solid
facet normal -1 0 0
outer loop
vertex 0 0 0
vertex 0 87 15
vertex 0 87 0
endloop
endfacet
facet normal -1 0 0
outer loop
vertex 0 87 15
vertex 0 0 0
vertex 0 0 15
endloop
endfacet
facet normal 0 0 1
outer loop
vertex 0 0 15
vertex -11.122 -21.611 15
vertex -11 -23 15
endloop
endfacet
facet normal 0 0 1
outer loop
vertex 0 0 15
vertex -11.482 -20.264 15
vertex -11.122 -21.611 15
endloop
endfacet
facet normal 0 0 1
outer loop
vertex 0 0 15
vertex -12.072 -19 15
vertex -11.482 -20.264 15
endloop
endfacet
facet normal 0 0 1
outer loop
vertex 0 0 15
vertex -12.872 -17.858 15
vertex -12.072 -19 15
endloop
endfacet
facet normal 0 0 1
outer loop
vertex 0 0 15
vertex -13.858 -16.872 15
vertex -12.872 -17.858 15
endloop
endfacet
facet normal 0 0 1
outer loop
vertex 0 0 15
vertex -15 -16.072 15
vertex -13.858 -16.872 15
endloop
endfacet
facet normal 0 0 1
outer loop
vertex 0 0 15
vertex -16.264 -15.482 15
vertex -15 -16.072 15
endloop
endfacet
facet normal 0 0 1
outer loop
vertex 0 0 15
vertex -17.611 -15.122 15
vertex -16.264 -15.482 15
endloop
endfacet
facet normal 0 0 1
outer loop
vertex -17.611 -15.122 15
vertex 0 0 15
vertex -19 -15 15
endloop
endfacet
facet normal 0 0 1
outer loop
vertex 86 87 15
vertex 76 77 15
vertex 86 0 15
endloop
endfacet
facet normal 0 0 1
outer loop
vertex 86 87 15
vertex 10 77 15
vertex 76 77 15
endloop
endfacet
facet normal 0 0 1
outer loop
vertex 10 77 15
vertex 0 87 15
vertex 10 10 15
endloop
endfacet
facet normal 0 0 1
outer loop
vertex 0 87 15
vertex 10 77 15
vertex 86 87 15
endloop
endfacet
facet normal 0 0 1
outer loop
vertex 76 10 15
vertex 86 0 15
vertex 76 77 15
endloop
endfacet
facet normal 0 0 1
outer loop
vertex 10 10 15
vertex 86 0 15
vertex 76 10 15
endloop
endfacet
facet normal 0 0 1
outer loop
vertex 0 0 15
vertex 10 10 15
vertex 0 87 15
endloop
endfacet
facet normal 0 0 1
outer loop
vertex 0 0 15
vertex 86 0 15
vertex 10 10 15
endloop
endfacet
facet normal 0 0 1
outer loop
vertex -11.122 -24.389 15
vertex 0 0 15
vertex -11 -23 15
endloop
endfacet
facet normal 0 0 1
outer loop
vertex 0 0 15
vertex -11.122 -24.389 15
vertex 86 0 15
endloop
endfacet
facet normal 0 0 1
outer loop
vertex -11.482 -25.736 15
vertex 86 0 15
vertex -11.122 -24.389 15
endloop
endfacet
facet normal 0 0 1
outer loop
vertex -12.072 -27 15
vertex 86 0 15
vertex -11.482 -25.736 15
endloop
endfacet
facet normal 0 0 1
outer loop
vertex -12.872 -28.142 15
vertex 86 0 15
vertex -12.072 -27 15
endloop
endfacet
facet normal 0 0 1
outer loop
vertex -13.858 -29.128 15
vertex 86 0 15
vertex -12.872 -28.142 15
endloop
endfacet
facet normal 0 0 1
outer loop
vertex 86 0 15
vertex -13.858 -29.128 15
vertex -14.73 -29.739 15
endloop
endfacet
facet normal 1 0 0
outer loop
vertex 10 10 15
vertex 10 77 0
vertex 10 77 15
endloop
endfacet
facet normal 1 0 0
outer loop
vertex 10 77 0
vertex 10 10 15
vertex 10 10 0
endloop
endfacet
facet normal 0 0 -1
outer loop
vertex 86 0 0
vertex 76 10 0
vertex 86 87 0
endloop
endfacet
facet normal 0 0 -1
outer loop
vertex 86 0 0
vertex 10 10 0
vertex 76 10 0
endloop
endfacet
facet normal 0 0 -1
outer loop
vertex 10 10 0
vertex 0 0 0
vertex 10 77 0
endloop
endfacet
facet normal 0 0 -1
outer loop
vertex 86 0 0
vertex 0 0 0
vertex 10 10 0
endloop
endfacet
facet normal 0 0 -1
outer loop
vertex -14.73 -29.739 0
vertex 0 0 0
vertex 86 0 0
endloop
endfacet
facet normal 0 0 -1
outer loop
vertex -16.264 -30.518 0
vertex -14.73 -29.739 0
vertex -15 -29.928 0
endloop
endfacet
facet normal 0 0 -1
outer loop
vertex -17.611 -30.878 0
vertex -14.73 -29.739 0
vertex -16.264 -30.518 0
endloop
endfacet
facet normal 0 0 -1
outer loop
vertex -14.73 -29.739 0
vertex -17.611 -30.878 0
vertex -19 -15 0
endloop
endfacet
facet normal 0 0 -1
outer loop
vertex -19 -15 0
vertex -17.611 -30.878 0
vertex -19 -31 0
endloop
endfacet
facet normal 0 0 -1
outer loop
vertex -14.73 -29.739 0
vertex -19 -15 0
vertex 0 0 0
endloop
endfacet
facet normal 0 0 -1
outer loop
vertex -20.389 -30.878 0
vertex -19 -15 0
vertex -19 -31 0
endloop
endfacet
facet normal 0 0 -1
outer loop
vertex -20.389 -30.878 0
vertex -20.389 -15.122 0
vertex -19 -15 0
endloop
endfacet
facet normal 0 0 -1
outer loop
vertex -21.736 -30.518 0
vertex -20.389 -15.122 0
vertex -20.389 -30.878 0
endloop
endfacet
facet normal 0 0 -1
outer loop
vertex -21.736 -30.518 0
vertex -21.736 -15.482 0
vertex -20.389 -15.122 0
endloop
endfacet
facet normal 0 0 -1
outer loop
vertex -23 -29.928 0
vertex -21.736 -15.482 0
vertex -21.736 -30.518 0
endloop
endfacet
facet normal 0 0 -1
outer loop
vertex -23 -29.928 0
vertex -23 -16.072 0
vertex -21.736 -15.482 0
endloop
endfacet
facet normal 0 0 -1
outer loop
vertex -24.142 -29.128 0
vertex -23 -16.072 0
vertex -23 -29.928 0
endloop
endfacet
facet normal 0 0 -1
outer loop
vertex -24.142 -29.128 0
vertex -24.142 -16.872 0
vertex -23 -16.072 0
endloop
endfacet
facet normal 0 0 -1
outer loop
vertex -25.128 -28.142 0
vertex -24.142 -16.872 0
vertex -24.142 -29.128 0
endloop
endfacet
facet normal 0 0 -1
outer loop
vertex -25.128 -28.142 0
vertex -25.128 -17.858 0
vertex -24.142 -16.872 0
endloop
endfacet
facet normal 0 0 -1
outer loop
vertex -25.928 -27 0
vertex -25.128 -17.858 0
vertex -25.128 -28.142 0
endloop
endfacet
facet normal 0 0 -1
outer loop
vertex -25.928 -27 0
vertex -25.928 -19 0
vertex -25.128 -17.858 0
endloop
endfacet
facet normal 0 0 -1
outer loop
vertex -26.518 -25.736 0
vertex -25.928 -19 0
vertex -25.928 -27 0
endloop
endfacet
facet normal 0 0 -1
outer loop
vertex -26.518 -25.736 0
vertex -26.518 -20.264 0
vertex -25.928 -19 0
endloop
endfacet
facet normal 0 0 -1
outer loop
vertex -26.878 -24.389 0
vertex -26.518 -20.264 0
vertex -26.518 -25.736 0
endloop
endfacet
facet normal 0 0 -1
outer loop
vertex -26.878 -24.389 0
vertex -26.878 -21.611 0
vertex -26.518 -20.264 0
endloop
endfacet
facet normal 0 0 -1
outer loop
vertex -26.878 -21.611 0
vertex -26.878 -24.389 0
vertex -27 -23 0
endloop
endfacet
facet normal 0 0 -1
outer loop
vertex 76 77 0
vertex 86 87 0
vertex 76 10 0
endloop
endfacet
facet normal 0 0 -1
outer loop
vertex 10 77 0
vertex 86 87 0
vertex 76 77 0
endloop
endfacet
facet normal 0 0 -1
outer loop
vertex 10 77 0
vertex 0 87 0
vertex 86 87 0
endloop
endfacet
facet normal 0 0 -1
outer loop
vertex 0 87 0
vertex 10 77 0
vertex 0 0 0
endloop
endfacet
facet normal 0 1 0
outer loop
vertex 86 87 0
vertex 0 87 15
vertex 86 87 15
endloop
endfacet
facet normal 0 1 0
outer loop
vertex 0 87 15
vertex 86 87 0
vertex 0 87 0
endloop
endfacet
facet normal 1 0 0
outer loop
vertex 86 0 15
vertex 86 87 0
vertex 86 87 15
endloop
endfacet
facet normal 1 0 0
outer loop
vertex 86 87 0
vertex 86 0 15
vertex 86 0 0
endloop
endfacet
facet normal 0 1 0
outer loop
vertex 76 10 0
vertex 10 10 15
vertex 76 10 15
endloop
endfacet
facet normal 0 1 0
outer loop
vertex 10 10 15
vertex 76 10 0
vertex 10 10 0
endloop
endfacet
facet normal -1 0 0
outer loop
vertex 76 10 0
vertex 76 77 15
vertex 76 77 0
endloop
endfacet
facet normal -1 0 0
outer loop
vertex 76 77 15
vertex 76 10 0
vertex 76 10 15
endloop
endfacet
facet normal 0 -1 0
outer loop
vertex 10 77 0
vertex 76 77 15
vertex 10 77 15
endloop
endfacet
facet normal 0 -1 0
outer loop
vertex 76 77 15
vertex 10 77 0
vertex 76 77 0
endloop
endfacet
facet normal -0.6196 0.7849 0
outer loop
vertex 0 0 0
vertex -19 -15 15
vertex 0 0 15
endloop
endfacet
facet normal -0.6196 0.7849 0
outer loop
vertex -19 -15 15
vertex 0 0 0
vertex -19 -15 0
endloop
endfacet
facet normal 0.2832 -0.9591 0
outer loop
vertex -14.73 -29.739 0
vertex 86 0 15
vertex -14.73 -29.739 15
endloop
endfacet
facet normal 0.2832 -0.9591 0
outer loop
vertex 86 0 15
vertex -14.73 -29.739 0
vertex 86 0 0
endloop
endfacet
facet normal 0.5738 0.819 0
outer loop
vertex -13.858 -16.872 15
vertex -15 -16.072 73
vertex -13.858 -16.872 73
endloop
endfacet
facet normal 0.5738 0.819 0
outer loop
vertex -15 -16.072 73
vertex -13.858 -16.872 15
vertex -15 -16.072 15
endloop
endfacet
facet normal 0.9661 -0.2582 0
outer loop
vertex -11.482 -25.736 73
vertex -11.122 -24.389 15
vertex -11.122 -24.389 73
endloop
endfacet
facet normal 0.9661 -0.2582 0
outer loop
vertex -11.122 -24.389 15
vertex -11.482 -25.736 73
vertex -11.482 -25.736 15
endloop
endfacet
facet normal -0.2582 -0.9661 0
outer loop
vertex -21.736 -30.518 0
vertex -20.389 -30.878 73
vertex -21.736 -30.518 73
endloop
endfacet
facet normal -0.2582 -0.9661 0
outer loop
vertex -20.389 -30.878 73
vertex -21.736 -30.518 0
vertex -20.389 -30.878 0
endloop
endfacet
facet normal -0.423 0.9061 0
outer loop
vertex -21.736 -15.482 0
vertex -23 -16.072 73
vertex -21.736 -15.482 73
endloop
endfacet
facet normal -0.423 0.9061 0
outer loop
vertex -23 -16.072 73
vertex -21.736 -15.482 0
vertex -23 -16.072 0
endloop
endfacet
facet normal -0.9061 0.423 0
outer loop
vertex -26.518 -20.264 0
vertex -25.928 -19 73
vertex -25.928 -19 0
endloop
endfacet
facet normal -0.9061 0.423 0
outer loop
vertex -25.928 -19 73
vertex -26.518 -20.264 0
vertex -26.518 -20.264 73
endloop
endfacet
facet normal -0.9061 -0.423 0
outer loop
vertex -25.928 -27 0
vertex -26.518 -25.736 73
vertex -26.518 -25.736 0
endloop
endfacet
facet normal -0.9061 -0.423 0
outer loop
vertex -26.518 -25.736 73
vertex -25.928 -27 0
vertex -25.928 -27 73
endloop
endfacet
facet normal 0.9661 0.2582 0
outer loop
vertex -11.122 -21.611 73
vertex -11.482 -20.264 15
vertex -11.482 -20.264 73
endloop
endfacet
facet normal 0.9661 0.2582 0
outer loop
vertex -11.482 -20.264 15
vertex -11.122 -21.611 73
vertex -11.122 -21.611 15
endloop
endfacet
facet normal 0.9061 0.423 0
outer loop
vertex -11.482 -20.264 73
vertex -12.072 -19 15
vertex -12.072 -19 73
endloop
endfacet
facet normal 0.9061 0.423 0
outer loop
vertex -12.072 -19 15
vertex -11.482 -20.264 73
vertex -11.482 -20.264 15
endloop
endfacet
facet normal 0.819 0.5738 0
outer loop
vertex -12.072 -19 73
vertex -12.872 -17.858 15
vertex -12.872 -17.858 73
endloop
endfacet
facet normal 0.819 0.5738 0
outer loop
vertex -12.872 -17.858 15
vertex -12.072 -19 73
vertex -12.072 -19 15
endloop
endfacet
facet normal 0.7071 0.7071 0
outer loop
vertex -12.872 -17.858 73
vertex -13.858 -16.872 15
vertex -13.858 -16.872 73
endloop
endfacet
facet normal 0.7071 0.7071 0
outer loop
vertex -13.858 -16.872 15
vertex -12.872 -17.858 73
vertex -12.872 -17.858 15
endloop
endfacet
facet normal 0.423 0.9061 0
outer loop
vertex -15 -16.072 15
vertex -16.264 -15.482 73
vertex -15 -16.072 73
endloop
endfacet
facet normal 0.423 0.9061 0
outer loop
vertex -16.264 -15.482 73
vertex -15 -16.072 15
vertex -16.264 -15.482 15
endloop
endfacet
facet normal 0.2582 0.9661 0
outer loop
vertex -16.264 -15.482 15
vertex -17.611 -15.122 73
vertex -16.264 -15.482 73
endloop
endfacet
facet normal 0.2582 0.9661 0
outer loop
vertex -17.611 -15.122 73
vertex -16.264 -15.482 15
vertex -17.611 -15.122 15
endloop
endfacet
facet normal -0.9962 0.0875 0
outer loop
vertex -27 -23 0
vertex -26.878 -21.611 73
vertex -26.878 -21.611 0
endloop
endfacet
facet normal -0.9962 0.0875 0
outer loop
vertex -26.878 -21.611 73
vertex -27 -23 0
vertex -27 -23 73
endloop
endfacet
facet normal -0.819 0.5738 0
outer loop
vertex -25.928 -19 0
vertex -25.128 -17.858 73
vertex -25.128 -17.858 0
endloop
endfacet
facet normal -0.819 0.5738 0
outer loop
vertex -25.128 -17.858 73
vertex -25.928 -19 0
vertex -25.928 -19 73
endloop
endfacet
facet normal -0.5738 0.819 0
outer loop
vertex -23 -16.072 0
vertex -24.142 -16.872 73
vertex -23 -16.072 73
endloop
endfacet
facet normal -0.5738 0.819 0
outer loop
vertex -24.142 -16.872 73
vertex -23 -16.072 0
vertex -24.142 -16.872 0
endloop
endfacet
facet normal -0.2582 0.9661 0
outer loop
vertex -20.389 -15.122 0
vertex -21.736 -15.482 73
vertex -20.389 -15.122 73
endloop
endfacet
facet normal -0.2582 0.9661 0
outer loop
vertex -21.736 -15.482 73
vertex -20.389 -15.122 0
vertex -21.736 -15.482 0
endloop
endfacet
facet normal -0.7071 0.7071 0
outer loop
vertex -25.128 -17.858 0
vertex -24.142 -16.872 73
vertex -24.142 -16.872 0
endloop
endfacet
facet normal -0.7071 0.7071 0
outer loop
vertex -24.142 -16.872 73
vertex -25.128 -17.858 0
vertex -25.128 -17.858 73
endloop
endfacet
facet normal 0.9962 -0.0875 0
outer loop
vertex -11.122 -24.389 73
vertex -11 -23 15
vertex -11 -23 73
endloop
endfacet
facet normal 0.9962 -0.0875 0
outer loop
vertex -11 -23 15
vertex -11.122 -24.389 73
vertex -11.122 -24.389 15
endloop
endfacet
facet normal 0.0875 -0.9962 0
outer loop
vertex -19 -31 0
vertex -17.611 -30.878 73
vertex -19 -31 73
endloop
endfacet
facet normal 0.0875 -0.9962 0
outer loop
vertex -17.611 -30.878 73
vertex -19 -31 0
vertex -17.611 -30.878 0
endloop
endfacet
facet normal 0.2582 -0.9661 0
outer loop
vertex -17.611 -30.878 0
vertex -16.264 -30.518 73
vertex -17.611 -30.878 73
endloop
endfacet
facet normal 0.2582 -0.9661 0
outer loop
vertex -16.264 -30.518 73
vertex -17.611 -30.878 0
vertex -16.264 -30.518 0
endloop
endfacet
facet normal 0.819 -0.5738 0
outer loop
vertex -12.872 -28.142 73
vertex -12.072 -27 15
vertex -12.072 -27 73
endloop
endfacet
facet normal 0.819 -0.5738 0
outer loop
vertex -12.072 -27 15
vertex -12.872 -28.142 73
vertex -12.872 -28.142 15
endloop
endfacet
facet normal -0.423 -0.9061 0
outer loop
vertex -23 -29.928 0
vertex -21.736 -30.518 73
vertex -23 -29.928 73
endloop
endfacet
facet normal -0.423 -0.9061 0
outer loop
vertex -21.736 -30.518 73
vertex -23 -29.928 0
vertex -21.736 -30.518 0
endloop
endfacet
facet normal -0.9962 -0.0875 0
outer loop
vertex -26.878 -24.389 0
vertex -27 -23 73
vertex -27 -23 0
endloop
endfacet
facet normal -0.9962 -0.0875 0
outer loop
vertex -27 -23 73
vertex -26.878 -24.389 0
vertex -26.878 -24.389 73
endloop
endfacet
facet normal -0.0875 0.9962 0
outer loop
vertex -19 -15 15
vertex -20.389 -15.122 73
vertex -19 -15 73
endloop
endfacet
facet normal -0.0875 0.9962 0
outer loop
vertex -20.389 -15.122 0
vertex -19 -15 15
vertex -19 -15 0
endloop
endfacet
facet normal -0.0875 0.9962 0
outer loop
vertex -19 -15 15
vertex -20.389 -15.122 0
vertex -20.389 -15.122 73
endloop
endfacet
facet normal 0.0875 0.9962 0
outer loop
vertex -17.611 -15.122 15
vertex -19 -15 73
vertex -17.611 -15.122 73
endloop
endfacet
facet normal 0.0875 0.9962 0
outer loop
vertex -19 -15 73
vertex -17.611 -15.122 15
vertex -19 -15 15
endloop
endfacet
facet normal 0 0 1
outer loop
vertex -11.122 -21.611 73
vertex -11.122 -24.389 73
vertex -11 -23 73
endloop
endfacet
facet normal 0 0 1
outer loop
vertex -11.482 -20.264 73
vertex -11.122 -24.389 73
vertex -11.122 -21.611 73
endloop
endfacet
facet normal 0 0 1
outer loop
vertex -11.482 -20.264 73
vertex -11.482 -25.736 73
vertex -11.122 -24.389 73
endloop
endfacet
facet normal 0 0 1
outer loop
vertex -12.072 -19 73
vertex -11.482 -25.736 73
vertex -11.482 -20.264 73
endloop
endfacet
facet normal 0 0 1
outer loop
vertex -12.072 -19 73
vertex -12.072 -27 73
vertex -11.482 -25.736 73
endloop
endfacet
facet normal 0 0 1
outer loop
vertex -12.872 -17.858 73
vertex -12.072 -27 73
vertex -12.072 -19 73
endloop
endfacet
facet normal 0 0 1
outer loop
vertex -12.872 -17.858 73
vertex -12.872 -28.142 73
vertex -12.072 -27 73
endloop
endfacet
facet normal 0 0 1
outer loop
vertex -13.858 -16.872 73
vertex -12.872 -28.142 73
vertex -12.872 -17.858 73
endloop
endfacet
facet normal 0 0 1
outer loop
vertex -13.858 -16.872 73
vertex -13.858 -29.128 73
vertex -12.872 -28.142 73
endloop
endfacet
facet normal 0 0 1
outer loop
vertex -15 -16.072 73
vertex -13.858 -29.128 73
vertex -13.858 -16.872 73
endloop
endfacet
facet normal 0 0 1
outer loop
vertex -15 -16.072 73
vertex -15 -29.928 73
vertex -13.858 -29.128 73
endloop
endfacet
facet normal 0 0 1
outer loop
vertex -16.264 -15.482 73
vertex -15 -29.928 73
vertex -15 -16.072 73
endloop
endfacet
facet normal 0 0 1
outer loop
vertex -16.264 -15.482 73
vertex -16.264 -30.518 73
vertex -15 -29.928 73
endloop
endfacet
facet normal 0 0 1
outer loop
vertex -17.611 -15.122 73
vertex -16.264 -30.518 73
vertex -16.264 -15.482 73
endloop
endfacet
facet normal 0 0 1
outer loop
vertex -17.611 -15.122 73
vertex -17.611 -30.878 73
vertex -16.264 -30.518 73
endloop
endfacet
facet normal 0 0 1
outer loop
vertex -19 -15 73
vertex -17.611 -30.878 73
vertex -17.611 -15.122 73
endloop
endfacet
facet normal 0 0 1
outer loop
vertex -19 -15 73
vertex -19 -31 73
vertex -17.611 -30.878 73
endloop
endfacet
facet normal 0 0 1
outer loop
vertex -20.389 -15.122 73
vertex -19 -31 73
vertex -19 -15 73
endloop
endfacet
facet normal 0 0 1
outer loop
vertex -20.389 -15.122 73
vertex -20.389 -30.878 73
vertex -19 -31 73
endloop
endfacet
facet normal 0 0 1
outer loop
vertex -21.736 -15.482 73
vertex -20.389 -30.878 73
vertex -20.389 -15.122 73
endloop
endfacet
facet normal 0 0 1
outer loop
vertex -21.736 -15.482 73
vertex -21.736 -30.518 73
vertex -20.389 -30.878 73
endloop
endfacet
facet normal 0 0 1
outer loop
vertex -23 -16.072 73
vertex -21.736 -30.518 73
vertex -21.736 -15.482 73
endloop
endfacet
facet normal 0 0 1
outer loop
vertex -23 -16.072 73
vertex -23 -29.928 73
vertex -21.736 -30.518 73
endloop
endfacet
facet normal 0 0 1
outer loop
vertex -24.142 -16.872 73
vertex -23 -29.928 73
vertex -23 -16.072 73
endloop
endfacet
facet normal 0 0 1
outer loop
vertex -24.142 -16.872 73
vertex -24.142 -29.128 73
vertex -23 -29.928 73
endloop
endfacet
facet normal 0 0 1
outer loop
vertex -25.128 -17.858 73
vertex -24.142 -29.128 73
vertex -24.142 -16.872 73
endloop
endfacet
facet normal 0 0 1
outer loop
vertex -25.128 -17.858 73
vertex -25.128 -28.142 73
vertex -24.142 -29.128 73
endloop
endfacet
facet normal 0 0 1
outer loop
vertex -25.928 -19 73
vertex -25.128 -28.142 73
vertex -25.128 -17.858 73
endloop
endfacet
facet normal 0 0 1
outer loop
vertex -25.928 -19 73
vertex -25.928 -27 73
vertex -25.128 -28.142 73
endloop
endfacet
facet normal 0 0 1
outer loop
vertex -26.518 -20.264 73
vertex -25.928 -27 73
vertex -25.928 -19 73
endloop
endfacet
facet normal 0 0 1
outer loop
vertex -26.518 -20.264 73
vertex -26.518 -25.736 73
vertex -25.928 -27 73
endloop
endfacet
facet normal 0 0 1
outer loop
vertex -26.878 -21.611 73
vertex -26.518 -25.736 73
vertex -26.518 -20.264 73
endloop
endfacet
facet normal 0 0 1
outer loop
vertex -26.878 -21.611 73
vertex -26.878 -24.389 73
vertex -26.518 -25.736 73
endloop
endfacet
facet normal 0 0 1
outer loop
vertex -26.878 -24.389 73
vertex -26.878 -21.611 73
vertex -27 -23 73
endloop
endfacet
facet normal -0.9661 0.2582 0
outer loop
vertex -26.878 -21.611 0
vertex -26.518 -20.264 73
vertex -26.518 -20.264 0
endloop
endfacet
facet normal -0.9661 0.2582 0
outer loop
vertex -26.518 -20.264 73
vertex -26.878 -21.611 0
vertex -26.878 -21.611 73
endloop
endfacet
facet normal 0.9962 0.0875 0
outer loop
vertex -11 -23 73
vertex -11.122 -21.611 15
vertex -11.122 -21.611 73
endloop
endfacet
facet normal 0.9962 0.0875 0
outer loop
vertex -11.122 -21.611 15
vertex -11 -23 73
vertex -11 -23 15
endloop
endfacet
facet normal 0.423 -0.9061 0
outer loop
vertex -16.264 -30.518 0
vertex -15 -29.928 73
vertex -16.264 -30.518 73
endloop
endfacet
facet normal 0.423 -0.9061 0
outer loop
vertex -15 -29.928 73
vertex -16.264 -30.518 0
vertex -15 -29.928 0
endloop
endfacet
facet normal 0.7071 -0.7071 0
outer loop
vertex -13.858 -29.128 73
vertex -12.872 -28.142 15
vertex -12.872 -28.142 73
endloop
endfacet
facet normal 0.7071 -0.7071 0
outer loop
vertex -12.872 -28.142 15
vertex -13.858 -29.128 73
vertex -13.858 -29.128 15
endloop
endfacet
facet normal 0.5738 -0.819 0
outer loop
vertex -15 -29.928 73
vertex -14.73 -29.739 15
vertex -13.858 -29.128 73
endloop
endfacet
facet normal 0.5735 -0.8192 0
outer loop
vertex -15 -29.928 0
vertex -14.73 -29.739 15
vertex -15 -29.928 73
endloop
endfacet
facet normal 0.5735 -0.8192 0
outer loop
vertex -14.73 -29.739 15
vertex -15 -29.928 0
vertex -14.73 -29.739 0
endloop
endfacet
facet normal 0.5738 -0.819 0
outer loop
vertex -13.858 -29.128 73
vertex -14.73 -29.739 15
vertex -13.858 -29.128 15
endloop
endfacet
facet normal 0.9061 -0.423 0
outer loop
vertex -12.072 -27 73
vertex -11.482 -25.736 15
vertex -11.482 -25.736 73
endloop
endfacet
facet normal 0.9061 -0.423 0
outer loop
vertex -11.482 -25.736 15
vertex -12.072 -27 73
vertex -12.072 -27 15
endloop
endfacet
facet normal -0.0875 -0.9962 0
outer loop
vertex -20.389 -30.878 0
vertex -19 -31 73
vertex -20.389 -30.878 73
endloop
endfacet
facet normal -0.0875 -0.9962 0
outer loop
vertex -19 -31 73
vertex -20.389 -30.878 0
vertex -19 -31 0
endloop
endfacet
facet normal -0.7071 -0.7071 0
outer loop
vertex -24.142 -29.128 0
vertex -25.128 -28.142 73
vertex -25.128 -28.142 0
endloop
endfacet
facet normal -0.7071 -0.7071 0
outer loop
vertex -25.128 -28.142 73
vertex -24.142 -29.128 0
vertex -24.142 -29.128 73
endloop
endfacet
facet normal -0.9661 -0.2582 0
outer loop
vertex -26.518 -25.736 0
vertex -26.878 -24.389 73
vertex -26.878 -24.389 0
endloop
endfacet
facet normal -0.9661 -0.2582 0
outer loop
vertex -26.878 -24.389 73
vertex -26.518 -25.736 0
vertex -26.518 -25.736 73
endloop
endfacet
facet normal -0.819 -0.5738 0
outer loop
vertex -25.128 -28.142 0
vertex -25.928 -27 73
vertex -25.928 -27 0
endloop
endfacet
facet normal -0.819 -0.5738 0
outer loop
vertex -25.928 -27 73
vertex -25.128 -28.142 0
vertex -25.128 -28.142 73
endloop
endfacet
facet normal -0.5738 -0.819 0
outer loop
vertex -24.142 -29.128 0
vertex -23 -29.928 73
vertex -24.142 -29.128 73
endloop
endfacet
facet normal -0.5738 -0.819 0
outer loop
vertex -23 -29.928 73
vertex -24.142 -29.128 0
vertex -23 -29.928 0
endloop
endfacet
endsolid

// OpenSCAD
t1 = 10;
t2 = 10;
t3 = 10;
t4 = 15;
t5 = 10;

h = 66 + t1 + t2;
l1 = 67 + t5 + t3;
l2 = l1;

r = 8;
x = 23;
y = 19;
z = 73;
cylinder_res = 36;

// Bracket around square mount
cube([t2, l2, t4]);
cube([h, t3, t4]);
translate([h-t1, 0, 0])
    cube([t1, l1, t4]);
translate([0, l2 - t5, 0])
    cube([h, t5, t4]);

// extrusion to cylinder
linear_extrude(height = t4)
    polygon(points=[[0,0], [-y, -(x-r)], [-y, -(x+r)], [h,0]]);

// cylilnder
translate([-y, -x, 0])
    cylinder(z, r, r, $fn=cylinder_res);
